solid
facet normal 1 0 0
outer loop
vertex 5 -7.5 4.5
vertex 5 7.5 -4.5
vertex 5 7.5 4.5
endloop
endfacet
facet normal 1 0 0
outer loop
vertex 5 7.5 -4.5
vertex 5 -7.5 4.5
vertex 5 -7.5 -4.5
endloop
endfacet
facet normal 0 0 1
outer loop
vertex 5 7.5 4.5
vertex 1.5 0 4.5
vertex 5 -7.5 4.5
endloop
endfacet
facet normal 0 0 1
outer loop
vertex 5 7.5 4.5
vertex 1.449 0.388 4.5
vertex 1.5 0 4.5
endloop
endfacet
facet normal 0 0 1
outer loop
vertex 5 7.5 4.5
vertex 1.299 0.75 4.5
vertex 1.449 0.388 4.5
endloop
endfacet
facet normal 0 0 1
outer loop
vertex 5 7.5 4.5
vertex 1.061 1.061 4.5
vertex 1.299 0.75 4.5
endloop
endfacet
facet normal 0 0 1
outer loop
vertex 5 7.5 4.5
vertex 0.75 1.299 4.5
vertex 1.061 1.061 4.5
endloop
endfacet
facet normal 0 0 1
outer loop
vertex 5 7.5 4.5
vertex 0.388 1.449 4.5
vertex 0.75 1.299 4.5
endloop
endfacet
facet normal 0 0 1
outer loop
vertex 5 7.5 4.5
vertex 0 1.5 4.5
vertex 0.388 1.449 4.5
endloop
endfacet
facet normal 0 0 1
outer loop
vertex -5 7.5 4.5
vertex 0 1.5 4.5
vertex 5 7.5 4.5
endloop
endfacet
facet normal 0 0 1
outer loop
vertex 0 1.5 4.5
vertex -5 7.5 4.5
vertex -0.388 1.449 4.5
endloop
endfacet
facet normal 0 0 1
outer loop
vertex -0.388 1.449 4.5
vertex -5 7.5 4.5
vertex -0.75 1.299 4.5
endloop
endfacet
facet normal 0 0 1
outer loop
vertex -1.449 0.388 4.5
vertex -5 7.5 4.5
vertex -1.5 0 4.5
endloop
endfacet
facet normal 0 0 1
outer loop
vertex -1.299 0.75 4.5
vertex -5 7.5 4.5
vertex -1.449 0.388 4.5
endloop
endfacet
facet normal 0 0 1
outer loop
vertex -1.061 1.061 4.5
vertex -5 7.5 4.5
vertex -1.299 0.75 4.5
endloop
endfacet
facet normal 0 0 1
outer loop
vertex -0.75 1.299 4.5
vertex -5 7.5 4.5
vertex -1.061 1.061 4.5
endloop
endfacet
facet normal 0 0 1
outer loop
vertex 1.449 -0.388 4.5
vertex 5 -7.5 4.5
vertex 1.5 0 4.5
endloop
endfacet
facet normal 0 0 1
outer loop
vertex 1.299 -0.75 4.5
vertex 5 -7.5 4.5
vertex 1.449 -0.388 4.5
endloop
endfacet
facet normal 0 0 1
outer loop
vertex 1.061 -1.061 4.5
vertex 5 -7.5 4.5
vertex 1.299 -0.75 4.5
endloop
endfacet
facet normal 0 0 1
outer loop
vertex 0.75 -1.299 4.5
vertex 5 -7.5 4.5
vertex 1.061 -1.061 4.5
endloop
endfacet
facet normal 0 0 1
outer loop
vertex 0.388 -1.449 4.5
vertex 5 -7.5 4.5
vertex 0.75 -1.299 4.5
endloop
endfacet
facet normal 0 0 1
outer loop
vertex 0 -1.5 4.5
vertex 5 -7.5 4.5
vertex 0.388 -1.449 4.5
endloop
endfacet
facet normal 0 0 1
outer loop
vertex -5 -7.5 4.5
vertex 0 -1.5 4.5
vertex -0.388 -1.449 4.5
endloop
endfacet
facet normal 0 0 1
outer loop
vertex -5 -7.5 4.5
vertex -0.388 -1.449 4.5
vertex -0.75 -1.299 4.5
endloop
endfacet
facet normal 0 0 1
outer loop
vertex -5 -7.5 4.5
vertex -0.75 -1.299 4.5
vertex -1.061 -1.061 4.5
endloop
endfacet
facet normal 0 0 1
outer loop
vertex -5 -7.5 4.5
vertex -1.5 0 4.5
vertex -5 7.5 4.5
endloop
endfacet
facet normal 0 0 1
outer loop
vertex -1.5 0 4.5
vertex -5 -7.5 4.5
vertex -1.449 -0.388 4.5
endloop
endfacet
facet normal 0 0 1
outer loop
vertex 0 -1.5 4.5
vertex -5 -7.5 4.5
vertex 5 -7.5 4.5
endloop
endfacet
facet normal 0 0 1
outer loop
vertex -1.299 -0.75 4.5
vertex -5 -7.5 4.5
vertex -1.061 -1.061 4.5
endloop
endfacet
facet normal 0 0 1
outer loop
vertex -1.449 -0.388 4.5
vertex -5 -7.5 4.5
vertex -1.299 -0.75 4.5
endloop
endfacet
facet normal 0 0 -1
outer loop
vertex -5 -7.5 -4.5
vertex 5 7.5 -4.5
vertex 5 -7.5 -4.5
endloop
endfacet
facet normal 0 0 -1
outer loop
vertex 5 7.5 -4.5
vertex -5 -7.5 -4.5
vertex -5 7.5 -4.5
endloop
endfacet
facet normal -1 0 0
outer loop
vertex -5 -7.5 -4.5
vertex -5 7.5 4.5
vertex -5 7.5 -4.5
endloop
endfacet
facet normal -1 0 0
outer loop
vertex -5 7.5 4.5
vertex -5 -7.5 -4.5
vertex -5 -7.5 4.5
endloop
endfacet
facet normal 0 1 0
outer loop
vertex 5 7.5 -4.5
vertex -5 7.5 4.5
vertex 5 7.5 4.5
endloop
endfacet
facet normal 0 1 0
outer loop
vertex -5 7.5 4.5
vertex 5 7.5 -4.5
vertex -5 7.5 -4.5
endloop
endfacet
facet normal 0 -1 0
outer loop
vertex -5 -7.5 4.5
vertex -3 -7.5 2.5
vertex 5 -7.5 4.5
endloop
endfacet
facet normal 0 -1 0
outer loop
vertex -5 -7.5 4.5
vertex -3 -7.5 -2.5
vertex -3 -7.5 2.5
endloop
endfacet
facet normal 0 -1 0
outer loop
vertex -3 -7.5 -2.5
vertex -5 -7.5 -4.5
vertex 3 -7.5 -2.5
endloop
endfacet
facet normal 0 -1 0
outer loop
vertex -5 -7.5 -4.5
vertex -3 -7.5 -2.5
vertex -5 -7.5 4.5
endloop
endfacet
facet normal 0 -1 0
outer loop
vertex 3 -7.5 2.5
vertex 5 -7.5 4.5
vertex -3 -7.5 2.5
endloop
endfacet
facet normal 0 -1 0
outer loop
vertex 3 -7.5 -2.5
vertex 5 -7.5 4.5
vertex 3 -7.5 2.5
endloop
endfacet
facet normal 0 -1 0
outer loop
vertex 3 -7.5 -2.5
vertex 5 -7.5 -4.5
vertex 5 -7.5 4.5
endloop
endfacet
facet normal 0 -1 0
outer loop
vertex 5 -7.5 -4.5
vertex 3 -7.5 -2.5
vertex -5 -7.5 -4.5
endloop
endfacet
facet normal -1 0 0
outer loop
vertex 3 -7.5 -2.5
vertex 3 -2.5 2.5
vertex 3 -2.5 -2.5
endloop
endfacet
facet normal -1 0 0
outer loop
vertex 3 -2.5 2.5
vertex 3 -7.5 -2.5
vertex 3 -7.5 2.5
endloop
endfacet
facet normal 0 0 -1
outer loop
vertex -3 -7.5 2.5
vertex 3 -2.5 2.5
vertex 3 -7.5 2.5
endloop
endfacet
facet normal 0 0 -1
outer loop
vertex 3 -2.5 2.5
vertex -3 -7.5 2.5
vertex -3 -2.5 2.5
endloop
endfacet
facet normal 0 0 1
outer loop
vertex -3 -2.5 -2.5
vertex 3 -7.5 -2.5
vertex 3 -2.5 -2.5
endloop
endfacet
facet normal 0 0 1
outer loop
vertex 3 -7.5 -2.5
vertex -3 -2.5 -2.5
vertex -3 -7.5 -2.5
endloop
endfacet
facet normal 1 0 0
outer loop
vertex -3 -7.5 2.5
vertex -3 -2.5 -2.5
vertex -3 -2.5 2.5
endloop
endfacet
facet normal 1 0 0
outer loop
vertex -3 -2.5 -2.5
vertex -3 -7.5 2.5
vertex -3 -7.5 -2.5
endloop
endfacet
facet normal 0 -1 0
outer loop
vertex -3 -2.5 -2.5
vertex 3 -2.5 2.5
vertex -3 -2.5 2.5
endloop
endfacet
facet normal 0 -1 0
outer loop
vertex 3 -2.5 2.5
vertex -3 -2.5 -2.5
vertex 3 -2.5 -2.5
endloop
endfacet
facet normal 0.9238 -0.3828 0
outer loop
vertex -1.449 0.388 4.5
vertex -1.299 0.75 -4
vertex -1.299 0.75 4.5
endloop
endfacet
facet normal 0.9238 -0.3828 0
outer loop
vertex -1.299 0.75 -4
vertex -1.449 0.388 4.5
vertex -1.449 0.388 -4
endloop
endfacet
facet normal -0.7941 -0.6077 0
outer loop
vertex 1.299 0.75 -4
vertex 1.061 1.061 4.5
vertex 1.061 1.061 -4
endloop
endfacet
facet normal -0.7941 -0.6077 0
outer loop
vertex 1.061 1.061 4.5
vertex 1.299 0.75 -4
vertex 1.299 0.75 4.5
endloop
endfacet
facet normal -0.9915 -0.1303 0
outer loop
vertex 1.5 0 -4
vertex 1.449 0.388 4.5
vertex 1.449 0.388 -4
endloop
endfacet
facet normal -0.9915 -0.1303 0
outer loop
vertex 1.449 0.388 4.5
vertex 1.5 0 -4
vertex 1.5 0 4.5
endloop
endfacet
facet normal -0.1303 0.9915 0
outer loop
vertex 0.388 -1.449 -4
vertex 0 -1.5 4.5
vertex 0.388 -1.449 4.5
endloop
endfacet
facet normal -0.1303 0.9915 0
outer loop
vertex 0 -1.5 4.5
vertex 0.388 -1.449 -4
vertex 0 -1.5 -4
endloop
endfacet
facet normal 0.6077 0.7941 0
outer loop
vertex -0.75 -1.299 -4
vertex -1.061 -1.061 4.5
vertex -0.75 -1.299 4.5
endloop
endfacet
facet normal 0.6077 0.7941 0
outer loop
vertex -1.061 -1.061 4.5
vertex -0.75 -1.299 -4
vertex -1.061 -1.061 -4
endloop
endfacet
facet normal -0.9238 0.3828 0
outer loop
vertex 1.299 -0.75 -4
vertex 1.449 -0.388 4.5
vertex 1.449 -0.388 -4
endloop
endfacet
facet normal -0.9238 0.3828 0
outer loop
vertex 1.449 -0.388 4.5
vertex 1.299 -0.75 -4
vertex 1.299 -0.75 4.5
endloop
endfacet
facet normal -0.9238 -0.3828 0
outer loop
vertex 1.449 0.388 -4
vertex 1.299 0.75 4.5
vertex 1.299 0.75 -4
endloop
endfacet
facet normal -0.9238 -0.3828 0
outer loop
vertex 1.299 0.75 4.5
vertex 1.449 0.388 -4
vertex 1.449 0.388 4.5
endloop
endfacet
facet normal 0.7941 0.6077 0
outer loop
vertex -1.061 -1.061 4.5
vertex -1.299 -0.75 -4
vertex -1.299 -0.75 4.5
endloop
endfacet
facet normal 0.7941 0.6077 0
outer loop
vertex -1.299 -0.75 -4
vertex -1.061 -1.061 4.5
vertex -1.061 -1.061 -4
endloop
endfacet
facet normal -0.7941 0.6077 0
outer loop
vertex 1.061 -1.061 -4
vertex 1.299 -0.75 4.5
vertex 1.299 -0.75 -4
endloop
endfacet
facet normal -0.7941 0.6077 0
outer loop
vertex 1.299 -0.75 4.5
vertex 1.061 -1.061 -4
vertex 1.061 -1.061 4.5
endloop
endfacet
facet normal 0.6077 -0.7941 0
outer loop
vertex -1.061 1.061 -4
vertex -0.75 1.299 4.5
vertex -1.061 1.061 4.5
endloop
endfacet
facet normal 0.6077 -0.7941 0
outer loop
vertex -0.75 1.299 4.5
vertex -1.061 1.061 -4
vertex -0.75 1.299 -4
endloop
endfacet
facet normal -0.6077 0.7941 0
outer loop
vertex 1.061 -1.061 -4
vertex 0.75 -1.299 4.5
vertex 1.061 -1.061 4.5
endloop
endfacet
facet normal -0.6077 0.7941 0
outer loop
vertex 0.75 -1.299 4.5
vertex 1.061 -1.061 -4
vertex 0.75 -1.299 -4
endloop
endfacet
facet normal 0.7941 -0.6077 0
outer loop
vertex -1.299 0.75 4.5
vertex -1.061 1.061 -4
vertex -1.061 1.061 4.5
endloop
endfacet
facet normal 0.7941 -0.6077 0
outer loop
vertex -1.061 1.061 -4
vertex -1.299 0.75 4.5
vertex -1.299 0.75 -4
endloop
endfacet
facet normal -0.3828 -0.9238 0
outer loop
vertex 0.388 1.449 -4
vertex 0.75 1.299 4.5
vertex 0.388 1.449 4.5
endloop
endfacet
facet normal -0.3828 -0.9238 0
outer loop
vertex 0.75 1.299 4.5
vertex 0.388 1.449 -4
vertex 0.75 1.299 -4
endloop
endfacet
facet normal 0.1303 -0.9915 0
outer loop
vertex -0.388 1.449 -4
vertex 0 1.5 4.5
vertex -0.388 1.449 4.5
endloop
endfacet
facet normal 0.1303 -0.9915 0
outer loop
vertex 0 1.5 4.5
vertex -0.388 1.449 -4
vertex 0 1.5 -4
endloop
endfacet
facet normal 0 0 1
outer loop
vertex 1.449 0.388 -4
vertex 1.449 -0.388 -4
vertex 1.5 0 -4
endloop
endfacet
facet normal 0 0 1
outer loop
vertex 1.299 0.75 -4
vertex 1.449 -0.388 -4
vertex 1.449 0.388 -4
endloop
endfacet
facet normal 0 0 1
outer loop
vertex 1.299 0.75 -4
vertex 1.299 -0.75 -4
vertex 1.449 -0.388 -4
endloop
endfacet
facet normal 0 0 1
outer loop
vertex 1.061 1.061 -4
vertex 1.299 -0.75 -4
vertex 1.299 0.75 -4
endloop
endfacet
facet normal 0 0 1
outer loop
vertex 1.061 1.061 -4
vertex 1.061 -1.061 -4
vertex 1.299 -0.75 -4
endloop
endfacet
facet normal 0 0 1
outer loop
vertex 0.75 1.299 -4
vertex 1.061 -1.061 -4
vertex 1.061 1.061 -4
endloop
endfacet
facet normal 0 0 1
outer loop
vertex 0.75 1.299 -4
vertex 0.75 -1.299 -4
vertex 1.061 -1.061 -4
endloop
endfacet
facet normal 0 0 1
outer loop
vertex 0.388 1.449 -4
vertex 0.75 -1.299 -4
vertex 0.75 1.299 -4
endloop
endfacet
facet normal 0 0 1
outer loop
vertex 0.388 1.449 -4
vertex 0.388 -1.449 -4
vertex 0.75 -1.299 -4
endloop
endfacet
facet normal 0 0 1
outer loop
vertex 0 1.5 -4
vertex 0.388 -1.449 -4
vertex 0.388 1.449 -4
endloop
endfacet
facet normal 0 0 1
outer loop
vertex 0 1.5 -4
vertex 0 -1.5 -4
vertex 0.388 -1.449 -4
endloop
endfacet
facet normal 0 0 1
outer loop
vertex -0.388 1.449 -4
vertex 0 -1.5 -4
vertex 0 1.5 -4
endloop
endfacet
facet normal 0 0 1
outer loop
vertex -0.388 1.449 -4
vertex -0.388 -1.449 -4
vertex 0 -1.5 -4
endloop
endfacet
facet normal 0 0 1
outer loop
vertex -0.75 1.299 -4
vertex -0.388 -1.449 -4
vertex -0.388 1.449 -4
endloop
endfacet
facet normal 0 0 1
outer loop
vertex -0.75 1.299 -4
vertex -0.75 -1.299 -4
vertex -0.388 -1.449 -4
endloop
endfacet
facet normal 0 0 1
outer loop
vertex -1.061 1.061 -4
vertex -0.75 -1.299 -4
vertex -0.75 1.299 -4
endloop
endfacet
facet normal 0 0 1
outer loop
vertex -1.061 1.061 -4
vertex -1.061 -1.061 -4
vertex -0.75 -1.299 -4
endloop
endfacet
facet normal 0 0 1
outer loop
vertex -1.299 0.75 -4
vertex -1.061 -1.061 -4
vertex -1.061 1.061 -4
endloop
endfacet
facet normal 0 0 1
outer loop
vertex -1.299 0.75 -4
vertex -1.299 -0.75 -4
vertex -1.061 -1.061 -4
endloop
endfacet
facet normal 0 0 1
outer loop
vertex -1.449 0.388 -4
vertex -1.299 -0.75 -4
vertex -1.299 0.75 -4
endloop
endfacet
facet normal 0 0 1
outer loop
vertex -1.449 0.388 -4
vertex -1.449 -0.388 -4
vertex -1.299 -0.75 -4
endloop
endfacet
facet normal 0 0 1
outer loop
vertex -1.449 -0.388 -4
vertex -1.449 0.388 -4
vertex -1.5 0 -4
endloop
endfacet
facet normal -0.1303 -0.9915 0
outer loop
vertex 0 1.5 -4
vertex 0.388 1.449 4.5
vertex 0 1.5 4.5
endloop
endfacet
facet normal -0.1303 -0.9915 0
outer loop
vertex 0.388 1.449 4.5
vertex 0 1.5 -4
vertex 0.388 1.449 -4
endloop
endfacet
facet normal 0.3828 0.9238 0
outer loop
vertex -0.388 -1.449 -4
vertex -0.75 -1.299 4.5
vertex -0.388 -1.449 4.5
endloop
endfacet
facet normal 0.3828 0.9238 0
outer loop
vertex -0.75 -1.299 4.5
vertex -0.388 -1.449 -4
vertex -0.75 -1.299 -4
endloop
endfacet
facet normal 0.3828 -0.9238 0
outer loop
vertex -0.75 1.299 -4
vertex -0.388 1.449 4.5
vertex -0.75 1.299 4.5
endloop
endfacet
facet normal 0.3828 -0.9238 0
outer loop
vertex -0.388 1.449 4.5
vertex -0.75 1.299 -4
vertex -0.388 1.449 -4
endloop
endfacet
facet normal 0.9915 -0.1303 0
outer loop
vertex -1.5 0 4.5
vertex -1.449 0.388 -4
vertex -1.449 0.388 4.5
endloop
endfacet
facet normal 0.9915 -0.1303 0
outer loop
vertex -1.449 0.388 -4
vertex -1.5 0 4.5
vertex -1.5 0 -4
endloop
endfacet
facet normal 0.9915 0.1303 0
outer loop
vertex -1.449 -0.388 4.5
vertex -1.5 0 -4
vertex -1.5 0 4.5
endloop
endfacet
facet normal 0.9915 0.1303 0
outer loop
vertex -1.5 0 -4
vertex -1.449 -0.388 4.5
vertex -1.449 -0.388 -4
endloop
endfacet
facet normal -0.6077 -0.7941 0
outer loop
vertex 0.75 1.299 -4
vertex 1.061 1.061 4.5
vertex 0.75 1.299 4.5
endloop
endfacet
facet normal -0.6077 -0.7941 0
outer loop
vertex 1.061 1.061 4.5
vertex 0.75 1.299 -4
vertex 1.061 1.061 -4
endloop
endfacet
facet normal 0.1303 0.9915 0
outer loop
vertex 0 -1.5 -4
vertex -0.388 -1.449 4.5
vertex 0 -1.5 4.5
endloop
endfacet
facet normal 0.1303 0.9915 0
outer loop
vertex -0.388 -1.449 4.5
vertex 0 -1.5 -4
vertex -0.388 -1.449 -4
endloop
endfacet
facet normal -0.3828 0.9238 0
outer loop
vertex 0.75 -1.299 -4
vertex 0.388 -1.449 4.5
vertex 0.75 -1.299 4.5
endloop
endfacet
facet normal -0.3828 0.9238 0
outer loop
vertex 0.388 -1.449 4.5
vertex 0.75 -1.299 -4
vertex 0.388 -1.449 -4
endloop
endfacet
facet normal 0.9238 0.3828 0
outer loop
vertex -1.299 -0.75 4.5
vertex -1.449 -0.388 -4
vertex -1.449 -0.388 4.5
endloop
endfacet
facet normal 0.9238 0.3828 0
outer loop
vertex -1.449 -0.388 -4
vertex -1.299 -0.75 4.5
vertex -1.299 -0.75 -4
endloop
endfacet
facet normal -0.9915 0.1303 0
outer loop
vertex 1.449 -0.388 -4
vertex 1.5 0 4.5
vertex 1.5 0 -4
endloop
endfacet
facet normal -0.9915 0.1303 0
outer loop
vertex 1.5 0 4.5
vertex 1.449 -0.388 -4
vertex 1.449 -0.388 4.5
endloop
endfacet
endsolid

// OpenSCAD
$fn = 24;

// Dimensiones generales del porta llaves (exteriores)
box_width = 10;   // Ancho total (eje X)
box_depth = 15;   // Profundidad total (eje Y)
box_height = 9;   // Alto total (eje Z)

// Dimensiones del hueco para la llave (interiores)
slot_width = 6;   // Ancho del hueco para la llave (eje X)
slot_height = 5;  // Alto del hueco para la llave (eje Z)
slot_depth = 10;  // Profundidad a la que se extiende el hueco dentro del objeto (eje Y)

// Diámetro del agujero para montaje (e.g., tornillo)
mount_hole_diameter = 3;

difference() {
    // Cuerpo principal del porta llaves
    cube([box_width, box_depth, box_height], center = true);

    // Recorte del hueco para la llave
    // El hueco se centra horizontal y verticalmente en la cara frontal.
    // Comienza en la cara frontal (-box_depth/2 en Y) y se extiende hacia adentro.
    translate([0, -box_depth / 2, 0]) {
        cube([slot_width, slot_depth, slot_height], center = true);
    }
    
    // Recorte del agujero de montaje
    // Se coloca en la parte superior sólida, centrado en X y se extiende a través de la profundidad.
    // La coordenada Z para el centro del agujero se calcula para posicionarlo en la mitad de la pared superior.
    translate([0, 0, (slot_height + box_height) / 4]) {
        cylinder(h = box_depth, d = mount_hole_diameter, center = true);
    }
}
